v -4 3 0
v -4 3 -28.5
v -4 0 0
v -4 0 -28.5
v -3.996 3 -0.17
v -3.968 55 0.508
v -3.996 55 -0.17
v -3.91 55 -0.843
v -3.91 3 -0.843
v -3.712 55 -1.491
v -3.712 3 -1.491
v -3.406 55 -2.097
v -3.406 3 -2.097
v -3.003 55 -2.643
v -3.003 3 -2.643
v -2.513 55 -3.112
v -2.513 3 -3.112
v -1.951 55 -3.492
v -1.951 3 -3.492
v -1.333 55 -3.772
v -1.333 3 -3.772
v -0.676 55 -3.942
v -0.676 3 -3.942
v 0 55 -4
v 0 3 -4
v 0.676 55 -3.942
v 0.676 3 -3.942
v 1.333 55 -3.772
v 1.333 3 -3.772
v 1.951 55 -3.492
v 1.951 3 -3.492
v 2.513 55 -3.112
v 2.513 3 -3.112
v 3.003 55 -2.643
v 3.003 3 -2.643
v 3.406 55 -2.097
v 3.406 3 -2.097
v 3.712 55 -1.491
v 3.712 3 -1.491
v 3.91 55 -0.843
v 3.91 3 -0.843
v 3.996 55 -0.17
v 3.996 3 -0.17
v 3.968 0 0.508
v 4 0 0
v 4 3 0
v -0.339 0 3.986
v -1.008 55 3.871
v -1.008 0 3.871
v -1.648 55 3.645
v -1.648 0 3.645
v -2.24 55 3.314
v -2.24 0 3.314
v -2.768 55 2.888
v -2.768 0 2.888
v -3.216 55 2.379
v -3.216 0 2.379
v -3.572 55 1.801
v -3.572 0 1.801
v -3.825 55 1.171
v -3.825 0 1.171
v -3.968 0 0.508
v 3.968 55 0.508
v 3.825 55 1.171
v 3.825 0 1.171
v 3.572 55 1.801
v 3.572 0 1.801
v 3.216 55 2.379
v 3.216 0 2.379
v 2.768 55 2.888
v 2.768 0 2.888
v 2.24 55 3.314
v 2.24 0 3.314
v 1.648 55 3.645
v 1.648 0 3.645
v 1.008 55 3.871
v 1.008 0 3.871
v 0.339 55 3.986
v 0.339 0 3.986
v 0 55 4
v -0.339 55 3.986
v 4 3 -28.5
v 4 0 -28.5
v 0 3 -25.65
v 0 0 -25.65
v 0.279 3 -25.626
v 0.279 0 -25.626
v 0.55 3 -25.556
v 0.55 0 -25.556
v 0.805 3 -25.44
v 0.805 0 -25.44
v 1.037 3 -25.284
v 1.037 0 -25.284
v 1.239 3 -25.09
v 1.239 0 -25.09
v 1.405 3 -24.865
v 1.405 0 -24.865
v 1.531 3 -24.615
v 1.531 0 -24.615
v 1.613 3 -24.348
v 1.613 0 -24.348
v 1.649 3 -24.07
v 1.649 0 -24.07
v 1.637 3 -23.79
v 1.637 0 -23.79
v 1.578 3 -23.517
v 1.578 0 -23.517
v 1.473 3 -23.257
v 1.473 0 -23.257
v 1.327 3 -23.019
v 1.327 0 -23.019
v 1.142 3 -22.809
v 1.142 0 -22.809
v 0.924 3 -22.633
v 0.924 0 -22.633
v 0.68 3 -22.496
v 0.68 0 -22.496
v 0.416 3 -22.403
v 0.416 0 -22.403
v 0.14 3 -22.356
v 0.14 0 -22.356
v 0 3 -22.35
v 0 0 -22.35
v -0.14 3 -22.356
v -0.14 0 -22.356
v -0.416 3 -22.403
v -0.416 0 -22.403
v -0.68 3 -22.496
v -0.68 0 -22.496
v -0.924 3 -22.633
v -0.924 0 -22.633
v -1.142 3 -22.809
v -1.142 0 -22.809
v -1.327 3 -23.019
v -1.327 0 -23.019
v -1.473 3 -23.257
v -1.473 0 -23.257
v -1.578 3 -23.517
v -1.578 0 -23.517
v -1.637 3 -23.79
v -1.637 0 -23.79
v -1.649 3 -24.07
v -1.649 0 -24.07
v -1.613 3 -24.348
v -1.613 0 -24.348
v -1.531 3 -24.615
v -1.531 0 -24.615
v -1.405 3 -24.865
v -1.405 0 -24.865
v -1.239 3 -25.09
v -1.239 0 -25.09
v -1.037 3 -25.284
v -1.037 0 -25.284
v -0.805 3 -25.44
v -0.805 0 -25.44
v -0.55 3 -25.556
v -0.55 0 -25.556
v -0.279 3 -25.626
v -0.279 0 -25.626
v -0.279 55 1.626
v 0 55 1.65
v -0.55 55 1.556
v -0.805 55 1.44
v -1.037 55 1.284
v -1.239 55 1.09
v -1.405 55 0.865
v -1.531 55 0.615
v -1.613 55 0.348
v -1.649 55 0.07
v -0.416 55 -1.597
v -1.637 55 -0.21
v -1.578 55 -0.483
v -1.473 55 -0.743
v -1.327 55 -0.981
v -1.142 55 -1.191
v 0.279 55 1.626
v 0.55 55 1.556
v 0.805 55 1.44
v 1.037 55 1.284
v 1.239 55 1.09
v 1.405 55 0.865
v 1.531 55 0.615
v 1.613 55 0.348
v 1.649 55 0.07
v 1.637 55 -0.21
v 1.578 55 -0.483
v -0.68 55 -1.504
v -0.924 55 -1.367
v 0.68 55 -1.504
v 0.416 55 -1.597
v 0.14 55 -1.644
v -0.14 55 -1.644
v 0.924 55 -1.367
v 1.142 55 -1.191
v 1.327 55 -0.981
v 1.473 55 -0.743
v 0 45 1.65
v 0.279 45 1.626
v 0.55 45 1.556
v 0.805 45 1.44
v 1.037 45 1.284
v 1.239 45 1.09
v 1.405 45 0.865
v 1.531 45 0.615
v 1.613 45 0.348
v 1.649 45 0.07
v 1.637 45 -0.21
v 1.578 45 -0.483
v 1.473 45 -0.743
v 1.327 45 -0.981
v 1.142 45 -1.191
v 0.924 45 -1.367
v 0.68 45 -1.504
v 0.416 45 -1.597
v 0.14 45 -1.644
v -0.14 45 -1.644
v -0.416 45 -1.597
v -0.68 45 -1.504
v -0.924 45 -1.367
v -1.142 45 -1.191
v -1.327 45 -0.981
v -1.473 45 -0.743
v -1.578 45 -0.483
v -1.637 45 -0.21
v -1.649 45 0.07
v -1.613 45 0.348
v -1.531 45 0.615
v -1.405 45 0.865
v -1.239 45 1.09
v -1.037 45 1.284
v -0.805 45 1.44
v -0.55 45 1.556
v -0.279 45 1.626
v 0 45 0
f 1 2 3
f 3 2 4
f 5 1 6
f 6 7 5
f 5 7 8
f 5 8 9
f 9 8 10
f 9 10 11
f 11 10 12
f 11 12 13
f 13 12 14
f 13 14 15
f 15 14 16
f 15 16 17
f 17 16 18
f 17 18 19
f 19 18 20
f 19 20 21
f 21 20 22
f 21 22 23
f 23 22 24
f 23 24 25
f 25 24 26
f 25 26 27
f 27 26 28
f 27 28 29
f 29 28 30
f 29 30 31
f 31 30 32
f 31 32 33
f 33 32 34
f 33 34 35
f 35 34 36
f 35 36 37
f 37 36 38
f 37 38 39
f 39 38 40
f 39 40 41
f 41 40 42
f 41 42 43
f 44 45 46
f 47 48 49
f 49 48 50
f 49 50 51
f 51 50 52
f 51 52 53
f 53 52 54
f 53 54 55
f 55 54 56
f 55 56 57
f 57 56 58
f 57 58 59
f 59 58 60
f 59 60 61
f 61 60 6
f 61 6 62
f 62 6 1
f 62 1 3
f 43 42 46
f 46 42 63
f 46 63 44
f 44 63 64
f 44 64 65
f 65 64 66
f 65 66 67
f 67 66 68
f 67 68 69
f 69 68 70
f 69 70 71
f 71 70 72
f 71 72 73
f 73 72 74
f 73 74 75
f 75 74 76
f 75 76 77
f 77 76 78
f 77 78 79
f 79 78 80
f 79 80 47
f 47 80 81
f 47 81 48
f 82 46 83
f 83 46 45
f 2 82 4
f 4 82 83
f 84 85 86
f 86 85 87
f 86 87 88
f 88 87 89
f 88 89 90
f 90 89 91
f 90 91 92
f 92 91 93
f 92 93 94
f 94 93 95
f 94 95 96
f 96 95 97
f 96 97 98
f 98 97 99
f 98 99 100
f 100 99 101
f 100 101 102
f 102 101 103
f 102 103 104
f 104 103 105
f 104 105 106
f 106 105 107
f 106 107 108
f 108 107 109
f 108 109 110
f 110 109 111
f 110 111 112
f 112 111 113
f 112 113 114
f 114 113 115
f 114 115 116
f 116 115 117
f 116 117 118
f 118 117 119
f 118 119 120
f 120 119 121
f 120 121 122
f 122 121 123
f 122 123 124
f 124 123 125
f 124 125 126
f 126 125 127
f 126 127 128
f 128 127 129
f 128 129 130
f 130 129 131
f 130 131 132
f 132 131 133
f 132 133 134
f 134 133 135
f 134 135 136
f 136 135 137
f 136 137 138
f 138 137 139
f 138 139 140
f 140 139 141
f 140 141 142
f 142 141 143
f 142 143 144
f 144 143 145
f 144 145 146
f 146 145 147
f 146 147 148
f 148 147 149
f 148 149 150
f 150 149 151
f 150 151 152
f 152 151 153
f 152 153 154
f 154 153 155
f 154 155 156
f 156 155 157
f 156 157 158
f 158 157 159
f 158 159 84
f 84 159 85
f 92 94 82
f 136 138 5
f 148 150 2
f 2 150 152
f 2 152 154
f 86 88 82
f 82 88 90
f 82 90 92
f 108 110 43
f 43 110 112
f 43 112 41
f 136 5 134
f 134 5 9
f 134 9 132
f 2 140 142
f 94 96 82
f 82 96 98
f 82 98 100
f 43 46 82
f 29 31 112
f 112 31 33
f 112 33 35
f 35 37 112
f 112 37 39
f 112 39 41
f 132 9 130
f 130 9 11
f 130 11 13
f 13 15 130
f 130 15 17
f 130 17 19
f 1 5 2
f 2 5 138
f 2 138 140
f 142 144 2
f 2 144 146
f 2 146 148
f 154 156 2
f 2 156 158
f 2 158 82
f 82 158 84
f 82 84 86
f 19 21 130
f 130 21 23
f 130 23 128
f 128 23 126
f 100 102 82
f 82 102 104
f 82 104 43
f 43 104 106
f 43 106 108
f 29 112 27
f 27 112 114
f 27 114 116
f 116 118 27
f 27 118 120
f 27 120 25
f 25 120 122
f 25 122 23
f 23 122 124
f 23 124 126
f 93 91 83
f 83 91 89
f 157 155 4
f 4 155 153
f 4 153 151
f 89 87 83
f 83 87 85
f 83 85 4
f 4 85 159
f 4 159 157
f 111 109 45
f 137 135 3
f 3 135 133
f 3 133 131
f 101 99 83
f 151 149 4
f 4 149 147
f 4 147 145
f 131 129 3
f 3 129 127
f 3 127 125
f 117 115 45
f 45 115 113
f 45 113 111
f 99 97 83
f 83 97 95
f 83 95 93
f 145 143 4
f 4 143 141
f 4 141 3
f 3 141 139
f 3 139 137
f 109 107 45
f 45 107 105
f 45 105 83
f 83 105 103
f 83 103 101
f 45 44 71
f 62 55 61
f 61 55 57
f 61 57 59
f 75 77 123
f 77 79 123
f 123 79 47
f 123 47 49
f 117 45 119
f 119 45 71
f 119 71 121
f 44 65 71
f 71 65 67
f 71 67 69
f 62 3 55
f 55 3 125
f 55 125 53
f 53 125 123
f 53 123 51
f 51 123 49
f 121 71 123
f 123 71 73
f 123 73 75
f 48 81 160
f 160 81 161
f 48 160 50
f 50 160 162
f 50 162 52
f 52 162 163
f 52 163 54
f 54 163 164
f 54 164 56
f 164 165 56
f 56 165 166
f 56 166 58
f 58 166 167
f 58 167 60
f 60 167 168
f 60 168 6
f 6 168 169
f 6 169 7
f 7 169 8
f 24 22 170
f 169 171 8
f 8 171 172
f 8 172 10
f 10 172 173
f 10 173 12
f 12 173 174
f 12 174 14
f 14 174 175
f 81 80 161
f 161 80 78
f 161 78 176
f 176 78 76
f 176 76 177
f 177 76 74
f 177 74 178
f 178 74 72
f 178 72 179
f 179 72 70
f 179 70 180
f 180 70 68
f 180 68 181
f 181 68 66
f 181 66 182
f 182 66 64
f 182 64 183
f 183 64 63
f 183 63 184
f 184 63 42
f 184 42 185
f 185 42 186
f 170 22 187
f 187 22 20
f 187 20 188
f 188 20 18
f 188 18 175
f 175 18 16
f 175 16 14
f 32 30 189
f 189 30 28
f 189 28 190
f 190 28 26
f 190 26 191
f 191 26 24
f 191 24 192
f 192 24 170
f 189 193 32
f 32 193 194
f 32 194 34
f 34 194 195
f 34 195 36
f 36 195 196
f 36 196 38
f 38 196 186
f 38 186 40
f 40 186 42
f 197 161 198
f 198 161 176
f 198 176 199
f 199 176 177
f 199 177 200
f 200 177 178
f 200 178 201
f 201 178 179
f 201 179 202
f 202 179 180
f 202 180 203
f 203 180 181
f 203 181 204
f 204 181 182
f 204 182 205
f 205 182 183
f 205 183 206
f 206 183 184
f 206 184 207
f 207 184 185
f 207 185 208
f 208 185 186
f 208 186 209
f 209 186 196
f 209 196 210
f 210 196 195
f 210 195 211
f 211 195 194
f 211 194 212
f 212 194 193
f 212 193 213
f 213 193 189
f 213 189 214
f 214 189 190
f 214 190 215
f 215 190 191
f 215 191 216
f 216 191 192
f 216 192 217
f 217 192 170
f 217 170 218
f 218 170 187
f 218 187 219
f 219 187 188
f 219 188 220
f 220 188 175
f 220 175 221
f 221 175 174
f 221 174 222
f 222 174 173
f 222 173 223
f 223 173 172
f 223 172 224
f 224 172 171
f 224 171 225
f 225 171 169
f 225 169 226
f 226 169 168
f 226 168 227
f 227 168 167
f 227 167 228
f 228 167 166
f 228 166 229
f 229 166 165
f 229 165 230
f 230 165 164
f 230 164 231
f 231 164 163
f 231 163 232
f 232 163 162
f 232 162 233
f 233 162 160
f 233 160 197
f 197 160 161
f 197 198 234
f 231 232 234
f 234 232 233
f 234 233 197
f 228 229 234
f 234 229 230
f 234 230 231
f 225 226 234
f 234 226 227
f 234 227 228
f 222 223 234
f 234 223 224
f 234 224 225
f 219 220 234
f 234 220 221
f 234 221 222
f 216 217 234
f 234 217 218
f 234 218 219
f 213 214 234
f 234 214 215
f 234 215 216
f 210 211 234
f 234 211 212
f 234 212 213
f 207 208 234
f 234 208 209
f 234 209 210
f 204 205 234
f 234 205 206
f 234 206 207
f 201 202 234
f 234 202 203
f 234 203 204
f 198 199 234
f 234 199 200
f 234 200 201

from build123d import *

# Parameters (mm, degrees)
SKIZZE2_R                       = 1.65
SKIZZE2_R_2                     = 4
AUFSATZ_LINEAR_AUSTRAGEN1_DEPTH = 3
SKIZZE3_R                       = 4
AUFSATZ_LINEAR_AUSTRAGEN2_DEPTH = 52
SKIZZE4_R                       = 1.65
SCHNITT_LINEAR_AUSTRAGEN1_DEPTH = 10


with BuildPart() as part:
    # Skizze2 → Aufsatz-Linear austragen1 (new body)
    # profile 1 of 2: a face of its own
    with BuildSketch(Plane(origin=(0, 0, 0), x_dir=(1, 0, 0), z_dir=(0, 1, 0))):
        with BuildLine():
            Line((-4, 28.5), (-4, 0))
            ThreePointArc((-4, 0), (0, 4), (4, 0))
            Line((4, 0), (4, 28.5))
            Line((4, 28.5), (-4, 28.5))
        make_face()
        with Locations(Location((0, 24, 0), (0, 0, 270))):
            Circle(SKIZZE2_R, mode=Mode.SUBTRACT)
    # profile 2 of 2: a face of its own
    with BuildSketch(Plane(origin=(0, 0, 0), x_dir=(1, 0, 0), z_dir=(0, 1, 0))):
        Circle(SKIZZE2_R_2)
    extrude(amount=AUFSATZ_LINEAR_AUSTRAGEN1_DEPTH)

    # Skizze3 → Aufsatz-Linear austragen2 (add)
    with BuildSketch(Plane(origin=(0, 3, 0), x_dir=(1, 0, 0), z_dir=(0, 1, 0))):
        Circle(SKIZZE3_R)
    extrude(amount=AUFSATZ_LINEAR_AUSTRAGEN2_DEPTH)

    # Skizze4 → Schnitt-Linear austragen1 (cut)
    with BuildSketch(Plane(origin=(0, 55, 0), x_dir=(1, 0, 0), z_dir=(0, 1, 0))):
        with Locations(Location((0, 0, 0), (0, 0, 270))):
            Circle(SKIZZE4_R)
    extrude(amount=-SCHNITT_LINEAR_AUSTRAGEN1_DEPTH, mode=Mode.SUBTRACT)


solid = part.part
